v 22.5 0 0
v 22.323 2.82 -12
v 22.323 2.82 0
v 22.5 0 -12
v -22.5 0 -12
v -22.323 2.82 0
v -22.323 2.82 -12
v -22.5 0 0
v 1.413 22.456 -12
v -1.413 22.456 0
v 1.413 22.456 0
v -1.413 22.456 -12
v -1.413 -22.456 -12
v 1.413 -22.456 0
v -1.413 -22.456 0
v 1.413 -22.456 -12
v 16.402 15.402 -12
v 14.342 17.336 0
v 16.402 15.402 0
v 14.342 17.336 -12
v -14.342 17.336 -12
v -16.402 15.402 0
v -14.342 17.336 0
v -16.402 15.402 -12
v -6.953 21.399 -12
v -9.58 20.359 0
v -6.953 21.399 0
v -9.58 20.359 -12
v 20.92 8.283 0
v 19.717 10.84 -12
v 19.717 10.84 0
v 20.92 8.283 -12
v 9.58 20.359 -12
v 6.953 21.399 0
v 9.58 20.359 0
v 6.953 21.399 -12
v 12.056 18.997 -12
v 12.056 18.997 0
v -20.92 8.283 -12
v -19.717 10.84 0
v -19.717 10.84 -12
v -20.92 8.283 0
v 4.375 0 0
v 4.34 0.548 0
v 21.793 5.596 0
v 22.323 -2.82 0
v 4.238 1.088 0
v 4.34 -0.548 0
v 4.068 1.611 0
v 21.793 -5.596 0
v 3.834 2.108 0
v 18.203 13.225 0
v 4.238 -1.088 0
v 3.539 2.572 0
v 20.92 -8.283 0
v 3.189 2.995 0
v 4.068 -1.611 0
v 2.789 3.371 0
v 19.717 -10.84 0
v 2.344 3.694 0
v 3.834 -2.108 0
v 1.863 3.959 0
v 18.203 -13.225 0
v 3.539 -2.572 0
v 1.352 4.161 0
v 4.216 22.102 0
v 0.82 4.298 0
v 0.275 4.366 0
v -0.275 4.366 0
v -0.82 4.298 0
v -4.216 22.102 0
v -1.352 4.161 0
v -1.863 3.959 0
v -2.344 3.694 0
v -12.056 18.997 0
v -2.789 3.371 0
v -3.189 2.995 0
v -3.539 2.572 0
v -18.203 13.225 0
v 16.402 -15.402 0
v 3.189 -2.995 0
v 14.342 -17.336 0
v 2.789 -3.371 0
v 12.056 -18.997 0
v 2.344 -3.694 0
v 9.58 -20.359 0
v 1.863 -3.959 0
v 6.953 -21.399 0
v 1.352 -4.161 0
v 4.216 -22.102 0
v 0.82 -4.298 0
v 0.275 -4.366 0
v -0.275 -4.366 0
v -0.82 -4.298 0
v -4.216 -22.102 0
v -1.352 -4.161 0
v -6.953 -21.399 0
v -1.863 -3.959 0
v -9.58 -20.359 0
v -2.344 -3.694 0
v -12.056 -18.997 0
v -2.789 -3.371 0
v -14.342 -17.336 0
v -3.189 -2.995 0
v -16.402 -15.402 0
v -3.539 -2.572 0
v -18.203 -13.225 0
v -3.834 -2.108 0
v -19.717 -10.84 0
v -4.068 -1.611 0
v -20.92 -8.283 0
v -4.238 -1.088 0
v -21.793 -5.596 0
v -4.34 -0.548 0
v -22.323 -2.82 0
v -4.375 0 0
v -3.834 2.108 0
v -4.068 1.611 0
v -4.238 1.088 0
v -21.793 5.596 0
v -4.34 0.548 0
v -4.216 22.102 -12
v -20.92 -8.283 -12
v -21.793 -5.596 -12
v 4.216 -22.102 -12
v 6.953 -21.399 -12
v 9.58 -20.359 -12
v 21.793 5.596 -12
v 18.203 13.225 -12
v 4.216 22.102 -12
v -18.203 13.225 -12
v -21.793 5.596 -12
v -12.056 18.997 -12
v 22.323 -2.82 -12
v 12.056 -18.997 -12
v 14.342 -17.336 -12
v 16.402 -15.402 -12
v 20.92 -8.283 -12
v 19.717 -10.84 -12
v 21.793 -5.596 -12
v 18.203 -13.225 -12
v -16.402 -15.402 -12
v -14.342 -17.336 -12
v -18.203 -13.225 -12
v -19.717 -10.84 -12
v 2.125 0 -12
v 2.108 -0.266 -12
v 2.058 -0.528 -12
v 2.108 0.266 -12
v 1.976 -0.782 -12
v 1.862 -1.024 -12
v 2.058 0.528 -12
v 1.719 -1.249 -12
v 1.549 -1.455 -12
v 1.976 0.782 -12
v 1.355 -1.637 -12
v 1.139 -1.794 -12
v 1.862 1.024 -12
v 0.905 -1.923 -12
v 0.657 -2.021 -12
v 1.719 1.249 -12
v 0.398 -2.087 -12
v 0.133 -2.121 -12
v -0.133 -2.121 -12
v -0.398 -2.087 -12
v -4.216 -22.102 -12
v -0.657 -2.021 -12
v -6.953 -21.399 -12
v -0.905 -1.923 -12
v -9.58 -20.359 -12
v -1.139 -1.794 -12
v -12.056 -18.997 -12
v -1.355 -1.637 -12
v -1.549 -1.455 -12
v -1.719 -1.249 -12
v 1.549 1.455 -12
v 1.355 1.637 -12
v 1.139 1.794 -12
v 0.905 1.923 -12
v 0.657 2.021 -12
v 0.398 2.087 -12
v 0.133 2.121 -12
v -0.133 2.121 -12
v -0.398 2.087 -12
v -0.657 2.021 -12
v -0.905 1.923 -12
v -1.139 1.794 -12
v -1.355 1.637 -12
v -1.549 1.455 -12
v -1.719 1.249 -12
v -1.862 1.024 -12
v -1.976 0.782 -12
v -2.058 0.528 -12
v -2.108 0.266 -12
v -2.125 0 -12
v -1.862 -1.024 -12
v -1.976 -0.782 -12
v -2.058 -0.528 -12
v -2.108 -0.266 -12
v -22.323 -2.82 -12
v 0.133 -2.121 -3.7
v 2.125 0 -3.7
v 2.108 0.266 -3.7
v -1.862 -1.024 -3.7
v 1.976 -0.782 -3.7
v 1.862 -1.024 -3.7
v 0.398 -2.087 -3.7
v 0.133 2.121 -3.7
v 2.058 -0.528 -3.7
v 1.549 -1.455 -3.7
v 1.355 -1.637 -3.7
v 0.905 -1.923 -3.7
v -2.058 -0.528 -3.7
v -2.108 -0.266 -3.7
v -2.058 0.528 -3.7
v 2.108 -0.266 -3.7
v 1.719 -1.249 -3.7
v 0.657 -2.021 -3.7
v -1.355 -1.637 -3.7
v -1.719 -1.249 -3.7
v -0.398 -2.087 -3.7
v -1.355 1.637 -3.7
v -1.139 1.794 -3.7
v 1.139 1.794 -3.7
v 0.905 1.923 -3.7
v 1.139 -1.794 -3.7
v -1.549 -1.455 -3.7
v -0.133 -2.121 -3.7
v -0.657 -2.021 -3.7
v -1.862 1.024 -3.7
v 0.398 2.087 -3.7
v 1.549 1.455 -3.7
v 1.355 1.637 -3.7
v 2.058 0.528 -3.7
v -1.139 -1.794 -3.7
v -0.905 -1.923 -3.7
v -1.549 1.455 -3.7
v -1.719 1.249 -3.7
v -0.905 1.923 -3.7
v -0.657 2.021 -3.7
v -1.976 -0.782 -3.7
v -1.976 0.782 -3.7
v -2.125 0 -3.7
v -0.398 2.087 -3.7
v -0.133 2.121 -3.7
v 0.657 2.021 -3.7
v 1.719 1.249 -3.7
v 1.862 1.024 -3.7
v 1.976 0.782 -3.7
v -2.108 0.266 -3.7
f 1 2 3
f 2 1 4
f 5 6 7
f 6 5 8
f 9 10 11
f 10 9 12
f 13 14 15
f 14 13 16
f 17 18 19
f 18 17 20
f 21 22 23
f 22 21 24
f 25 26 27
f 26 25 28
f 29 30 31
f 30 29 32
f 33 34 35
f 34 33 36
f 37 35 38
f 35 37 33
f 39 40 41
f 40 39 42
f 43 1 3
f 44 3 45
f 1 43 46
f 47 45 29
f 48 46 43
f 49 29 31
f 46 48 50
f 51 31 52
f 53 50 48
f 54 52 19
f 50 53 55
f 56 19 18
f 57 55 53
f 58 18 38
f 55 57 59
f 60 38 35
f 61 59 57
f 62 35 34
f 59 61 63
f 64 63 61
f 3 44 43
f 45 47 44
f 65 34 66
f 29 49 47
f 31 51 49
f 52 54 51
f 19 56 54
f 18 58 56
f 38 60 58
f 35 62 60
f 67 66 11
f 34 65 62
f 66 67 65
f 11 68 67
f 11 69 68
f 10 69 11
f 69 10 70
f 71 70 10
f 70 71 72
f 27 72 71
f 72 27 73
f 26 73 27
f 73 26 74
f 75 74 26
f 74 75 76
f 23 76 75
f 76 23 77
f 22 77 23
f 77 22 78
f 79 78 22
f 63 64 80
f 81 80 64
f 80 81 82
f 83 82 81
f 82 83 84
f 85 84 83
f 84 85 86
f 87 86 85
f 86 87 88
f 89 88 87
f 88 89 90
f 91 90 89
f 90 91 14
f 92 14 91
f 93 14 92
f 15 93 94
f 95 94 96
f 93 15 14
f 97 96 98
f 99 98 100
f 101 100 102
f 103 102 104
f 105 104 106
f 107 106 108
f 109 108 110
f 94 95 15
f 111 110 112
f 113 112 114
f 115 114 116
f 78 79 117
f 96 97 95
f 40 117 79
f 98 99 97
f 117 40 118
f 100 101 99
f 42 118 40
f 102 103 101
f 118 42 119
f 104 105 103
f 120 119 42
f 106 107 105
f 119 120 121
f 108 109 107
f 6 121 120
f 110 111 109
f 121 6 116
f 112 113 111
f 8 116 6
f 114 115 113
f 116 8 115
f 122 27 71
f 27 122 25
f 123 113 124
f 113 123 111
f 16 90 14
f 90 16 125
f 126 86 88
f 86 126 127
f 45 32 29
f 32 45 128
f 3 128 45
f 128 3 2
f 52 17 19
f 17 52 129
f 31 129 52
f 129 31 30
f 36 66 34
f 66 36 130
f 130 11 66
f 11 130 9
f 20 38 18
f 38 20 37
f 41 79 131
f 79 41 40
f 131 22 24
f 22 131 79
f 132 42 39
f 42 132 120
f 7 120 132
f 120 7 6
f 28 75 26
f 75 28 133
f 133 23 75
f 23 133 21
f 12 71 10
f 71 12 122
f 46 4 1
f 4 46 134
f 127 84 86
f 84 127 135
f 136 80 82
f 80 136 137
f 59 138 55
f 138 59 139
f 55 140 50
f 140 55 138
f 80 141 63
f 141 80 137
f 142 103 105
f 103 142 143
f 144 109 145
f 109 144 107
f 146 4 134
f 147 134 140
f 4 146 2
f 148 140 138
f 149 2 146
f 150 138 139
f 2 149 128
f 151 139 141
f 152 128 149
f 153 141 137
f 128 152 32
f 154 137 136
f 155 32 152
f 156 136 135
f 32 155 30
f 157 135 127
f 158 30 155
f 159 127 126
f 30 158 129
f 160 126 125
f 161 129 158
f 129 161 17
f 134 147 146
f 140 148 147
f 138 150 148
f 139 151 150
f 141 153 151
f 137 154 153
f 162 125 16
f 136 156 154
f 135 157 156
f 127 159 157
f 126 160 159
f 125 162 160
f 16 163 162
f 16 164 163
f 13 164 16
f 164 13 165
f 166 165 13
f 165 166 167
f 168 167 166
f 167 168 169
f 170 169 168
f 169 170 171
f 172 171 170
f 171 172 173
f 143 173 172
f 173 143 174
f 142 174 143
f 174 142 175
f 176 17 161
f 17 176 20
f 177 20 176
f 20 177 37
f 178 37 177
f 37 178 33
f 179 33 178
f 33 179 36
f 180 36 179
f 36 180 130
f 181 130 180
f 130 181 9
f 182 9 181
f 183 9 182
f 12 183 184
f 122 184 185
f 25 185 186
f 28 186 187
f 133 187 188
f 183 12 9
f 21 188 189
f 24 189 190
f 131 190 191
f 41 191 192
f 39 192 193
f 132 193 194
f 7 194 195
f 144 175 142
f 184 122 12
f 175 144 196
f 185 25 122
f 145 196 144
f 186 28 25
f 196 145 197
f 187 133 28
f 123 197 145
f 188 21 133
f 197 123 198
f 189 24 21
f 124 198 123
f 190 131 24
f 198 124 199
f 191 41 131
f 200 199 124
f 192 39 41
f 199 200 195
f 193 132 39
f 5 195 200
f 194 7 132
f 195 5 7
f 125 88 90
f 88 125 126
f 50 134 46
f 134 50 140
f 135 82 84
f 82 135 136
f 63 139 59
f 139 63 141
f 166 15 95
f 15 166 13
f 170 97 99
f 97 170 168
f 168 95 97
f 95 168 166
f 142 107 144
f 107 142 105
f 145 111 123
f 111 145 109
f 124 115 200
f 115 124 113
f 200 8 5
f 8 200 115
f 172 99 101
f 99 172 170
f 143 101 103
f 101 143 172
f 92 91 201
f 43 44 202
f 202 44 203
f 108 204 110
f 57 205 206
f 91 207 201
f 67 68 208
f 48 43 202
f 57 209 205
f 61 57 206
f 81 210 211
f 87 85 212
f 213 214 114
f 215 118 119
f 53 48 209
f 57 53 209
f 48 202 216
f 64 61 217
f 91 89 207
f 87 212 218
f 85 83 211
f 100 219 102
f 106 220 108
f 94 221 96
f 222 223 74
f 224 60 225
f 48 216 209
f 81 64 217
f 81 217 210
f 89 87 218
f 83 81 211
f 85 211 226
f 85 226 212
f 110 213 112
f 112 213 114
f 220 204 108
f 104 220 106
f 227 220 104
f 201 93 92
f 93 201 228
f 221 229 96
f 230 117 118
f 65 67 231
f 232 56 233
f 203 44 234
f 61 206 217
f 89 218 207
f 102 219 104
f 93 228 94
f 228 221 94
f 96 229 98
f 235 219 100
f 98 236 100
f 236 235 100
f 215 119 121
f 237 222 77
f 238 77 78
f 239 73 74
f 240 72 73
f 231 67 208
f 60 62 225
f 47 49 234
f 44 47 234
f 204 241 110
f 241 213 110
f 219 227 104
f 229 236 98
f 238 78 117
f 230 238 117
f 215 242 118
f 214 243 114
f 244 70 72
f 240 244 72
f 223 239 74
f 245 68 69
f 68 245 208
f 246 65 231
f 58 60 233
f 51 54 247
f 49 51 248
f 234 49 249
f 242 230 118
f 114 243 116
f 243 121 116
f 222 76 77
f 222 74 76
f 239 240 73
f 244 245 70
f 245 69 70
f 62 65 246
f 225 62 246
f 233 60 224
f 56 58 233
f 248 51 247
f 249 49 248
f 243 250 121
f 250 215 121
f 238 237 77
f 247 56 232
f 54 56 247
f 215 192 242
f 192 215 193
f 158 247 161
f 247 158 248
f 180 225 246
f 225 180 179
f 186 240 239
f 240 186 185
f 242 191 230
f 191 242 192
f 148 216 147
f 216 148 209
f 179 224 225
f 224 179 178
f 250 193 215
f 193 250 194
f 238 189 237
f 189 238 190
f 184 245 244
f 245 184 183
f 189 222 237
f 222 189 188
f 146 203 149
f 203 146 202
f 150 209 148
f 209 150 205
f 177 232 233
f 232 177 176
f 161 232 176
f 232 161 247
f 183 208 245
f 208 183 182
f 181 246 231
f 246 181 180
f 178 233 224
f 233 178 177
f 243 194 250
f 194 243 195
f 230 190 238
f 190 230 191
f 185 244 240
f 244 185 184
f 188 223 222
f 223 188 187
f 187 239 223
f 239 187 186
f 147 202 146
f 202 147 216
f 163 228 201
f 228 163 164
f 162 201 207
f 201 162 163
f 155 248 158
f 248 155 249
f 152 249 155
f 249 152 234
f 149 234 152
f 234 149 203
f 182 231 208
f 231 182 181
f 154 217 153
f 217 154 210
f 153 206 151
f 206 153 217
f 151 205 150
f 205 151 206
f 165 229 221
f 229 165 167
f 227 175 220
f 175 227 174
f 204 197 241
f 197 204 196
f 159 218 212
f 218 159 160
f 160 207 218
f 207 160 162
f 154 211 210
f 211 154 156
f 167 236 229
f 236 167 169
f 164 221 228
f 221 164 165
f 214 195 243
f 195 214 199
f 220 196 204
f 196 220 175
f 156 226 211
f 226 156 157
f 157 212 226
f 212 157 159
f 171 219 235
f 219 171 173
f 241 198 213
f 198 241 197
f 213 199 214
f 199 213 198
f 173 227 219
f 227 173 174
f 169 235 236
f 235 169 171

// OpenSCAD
$fn = 50;


difference() {
	union() {
		translate(v = [0, 0, -12.0000000000]) {
			cylinder(h = 12, r = 22.5000000000);
		}
		translate(v = [0, 0, -12.0000000000]) {
			cylinder(h = 12, r = 2.8750000000);
		}
	}
	union() {
		translate(v = [0, 0, 0]) {
			rotate(a = [0, 0, 0]) {
				difference() {
					union() {
						translate(v = [0, 0, -12.0000000000]) {
							cylinder(h = 12, r = 2.0000000000);
						}
						translate(v = [0, 0, -3.7000000000]) {
							cylinder(h = 3.7000000000, r1 = 2.1250000000, r2 = 4.3750000000);
						}
						translate(v = [0, 0, -12.0000000000]) {
							cylinder(h = 12, r = 2.1250000000);
						}
						translate(v = [0, 0, -12.0000000000]) {
							cylinder(h = 12, r = 2.0000000000);
						}
					}
					union();
				}
			}
		}
	}
}
